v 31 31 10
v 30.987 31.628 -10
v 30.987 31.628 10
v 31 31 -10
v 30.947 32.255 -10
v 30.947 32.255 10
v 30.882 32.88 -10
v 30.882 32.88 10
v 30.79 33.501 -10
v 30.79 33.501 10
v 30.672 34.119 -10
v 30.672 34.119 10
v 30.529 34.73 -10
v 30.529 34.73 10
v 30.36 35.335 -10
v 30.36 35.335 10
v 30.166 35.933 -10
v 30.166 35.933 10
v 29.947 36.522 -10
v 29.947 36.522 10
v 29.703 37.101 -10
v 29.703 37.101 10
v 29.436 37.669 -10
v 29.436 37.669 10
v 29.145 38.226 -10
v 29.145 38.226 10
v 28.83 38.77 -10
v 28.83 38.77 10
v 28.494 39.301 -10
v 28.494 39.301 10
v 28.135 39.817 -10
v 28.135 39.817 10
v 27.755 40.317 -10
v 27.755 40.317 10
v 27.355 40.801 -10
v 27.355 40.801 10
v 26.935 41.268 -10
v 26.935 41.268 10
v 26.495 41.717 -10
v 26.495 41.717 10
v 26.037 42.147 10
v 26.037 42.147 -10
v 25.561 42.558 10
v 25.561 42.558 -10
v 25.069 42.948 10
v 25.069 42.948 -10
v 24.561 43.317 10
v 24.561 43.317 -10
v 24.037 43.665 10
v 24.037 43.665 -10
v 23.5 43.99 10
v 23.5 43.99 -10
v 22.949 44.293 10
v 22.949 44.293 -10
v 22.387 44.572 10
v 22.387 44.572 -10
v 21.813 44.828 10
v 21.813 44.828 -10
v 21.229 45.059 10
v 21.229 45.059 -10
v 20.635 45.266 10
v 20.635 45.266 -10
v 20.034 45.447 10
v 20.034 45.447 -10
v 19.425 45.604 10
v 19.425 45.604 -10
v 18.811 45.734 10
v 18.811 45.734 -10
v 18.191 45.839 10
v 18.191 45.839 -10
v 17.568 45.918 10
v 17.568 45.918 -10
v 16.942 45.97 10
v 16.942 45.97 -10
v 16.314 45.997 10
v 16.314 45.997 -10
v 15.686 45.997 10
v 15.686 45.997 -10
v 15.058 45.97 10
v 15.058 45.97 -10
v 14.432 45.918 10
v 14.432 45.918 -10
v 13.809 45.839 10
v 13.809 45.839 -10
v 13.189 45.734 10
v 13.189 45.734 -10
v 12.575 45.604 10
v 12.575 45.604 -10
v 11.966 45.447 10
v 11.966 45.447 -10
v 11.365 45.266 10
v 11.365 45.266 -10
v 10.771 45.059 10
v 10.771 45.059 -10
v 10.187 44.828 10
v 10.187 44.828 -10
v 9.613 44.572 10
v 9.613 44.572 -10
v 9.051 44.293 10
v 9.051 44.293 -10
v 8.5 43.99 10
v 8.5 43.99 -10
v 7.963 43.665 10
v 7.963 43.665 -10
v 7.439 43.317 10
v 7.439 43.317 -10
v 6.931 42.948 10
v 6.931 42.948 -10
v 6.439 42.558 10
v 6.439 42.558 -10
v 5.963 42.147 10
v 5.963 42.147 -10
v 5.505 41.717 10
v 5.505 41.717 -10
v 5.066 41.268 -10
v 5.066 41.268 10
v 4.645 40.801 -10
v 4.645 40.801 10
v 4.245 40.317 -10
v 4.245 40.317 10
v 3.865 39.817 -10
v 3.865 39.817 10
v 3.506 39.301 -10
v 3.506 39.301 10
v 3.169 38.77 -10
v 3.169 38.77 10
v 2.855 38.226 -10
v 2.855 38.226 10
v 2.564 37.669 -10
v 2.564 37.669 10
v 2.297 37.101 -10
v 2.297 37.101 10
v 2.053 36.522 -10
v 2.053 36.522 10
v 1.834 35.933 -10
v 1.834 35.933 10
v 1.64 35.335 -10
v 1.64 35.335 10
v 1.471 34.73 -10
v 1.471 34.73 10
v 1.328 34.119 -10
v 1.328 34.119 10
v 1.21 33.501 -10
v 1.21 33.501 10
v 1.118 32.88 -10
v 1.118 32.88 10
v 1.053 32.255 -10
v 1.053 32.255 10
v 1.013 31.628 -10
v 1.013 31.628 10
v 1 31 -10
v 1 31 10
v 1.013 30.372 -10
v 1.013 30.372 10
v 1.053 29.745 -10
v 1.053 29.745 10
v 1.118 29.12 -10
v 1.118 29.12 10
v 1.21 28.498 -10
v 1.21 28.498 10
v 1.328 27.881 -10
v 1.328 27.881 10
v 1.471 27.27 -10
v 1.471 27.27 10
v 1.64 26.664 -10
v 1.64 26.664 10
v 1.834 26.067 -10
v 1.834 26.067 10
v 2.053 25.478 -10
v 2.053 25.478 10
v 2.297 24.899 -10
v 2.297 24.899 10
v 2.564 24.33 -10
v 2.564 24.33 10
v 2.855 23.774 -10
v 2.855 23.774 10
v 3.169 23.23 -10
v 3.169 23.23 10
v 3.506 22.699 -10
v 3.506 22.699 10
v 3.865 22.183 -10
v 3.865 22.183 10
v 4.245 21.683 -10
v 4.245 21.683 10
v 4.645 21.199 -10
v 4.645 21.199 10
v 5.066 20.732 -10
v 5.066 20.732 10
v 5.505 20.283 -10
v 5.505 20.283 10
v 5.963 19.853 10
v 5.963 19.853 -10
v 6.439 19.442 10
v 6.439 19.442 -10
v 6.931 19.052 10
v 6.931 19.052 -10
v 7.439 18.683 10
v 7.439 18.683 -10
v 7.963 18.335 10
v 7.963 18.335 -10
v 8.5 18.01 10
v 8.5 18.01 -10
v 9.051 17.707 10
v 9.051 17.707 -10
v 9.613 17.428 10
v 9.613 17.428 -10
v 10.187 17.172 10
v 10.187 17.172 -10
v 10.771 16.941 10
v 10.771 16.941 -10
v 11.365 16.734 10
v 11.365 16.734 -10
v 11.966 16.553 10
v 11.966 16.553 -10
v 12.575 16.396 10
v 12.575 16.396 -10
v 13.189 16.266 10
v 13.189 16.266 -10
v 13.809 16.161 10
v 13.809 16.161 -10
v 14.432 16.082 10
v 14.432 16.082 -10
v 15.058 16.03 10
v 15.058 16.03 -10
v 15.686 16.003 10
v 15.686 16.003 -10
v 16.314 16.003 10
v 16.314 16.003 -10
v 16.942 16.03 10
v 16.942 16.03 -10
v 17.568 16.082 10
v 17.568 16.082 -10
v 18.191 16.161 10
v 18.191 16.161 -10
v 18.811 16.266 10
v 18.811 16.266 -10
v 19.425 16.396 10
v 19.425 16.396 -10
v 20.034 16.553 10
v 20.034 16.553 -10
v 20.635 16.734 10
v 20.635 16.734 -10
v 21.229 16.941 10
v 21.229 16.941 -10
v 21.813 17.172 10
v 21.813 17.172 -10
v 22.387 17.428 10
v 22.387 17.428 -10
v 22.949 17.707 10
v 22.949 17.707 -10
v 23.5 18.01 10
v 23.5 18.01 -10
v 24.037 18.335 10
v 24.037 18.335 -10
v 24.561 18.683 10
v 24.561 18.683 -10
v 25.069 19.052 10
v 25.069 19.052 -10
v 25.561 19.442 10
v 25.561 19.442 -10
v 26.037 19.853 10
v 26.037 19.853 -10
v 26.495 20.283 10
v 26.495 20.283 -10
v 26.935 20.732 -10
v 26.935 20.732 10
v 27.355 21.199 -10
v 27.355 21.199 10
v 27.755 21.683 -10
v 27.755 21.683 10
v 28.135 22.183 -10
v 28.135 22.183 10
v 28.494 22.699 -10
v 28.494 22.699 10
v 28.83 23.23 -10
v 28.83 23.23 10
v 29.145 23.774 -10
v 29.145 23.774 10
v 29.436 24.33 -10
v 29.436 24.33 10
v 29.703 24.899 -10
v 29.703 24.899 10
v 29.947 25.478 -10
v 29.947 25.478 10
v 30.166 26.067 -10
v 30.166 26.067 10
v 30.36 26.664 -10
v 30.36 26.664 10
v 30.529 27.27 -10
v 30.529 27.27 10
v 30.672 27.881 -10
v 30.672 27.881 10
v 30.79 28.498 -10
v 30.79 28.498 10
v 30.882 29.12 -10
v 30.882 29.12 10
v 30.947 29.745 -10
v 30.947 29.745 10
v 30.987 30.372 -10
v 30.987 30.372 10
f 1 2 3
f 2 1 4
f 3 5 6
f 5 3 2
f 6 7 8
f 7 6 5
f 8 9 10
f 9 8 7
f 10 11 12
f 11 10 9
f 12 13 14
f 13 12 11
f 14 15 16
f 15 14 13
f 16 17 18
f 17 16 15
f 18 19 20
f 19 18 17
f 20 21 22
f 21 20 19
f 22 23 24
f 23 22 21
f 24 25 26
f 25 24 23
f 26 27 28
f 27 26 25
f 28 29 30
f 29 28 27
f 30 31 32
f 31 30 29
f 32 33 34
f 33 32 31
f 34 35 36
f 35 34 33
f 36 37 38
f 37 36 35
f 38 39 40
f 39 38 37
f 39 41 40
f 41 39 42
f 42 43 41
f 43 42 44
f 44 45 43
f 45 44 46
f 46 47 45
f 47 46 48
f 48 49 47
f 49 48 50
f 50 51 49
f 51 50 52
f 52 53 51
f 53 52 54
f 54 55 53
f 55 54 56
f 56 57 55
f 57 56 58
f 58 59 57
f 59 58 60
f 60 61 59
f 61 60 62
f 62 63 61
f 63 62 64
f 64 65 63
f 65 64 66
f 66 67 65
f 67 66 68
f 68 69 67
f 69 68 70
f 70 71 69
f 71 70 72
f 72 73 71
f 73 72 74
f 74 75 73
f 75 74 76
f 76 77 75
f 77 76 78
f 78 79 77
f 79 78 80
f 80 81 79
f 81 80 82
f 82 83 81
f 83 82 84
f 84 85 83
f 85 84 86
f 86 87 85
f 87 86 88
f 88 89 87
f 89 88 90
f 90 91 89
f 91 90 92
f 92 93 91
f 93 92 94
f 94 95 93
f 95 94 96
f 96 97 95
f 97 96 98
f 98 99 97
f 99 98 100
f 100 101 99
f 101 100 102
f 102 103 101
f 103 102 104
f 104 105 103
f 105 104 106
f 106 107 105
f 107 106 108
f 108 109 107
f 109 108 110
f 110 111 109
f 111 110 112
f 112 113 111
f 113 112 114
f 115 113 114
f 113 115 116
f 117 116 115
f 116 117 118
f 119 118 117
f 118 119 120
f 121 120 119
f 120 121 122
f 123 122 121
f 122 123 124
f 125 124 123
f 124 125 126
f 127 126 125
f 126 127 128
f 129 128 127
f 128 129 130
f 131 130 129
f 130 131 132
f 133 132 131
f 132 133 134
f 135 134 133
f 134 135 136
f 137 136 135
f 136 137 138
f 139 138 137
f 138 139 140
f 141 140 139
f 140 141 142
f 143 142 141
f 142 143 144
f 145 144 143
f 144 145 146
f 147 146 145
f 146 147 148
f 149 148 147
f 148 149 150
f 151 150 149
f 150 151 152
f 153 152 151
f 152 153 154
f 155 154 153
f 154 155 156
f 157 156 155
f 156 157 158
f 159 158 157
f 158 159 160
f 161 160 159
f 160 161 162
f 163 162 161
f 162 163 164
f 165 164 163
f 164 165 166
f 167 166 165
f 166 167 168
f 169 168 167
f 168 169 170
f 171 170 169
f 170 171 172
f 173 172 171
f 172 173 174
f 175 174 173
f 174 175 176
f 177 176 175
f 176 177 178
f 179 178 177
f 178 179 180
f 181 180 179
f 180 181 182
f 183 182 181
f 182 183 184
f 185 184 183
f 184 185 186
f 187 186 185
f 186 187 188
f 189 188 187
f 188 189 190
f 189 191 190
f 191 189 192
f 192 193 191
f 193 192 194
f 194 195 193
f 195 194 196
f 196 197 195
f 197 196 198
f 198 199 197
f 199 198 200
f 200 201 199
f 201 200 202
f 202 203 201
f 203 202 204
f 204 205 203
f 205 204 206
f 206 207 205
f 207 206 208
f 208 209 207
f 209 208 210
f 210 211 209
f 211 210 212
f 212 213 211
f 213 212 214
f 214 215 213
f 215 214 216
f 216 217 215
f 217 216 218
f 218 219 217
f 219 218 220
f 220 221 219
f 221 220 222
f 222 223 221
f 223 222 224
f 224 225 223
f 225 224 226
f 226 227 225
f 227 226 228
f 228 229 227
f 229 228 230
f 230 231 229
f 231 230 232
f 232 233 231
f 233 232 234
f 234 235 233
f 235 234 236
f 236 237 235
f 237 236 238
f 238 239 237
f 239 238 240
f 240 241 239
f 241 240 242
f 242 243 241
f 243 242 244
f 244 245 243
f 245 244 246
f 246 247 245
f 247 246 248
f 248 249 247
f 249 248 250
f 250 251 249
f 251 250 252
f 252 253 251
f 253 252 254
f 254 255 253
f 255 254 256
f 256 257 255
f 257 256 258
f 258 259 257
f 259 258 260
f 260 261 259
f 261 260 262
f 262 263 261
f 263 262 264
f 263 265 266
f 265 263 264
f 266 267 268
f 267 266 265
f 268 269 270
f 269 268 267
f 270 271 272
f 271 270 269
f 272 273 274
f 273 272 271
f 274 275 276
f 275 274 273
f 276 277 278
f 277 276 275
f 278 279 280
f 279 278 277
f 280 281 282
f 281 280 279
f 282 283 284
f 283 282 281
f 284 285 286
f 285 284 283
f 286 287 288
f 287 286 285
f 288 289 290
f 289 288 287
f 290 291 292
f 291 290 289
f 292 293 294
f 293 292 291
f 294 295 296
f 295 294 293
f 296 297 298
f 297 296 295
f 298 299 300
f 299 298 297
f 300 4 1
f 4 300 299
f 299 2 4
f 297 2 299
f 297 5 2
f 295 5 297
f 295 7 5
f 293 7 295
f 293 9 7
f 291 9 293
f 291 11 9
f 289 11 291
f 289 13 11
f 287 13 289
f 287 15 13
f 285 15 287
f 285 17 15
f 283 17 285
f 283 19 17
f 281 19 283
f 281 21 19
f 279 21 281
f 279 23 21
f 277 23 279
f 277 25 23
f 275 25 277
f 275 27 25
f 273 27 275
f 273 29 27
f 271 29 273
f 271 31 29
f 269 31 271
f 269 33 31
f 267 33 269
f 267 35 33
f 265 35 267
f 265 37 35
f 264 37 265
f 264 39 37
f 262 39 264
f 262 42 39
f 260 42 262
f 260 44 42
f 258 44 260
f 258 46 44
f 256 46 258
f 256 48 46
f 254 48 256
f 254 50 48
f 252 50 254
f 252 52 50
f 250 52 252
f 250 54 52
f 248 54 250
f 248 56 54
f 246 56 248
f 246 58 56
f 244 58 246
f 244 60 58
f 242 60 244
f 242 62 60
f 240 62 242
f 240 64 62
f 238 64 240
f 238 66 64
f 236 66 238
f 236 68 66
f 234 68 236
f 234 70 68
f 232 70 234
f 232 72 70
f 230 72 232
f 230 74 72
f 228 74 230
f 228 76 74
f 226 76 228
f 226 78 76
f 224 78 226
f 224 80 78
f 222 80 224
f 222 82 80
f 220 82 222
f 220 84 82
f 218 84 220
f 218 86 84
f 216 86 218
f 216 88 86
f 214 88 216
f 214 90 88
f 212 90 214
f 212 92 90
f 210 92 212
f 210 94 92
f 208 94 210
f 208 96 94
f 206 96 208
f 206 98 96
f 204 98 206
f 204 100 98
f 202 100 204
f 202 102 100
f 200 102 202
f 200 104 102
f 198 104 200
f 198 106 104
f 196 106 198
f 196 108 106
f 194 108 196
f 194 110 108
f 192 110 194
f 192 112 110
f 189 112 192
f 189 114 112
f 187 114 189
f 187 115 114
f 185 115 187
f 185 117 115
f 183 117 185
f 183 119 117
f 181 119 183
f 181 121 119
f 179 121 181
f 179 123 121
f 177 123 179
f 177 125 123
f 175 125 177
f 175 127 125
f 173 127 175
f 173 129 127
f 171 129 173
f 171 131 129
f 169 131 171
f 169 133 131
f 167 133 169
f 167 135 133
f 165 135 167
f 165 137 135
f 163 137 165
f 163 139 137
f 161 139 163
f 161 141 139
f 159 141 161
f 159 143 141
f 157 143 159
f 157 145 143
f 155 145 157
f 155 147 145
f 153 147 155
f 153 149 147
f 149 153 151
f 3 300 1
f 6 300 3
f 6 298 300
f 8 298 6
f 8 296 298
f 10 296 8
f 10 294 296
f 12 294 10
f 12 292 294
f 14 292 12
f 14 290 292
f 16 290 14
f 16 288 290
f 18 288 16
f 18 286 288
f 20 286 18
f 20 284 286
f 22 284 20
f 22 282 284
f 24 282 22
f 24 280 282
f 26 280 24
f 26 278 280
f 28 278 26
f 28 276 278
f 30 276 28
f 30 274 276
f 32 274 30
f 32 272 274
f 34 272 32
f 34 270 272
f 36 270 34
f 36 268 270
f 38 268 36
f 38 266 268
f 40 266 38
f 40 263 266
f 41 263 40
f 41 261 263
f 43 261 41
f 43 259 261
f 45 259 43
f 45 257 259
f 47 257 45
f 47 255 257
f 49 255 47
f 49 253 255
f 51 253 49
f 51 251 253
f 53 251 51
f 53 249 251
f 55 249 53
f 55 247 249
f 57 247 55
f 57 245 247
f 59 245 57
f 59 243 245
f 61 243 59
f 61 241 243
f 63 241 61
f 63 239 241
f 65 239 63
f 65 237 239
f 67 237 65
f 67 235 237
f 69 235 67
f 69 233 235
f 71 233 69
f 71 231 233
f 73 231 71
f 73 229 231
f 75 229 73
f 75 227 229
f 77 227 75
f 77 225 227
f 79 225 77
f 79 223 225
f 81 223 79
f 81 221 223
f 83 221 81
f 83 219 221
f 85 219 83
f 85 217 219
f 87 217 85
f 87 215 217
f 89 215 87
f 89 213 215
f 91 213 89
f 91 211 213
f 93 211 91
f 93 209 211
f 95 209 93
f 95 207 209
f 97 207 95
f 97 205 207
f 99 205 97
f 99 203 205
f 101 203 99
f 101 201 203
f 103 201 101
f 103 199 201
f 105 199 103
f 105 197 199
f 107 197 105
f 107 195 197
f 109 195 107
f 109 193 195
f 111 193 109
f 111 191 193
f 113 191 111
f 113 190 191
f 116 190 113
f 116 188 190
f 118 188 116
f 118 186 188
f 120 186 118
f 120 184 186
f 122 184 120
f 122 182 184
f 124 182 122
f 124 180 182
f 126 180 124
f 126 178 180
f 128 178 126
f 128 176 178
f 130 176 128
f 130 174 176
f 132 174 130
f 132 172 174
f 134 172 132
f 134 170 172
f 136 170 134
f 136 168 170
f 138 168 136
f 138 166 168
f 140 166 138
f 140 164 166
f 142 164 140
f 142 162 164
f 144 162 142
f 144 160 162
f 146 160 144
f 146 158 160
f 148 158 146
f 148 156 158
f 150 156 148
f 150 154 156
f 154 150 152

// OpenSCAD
$fn = 150;

translate([16, 31, 0])
rotate([0, 0, 0])
cylinder(20, 15, 15, true);
